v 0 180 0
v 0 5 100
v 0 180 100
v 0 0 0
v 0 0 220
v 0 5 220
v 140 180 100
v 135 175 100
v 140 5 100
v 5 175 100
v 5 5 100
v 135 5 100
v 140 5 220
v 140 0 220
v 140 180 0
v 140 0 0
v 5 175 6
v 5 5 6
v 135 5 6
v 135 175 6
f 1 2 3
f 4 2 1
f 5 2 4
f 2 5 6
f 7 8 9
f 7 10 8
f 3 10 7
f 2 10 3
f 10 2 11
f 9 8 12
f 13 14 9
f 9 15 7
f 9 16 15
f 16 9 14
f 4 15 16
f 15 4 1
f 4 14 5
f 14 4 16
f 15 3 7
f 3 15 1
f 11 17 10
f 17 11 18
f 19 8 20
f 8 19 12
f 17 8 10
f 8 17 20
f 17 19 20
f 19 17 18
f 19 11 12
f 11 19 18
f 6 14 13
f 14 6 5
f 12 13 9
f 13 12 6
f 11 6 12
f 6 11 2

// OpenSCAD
// Parameters
box_size = 180;        // mm
bank_size = 140;        // mm
box_high = 100;        // mm
thickness = 5;         // mm (wall thickness)
flap_extension = 120;  // mm (extra top part for mounting)
hole_diam = 8;         // mm
hole_margin = 30;      // mm from flap sides
hole_distance = box_size - 2 * hole_margin; // distance between holes
hole_y = hole_margin;  // Y position from left for first hole
hole_z = box_size + flap_extension / 2; // Z position for holes (centered on flap)

// Box (open at back)
difference() {
    // Outer shell
    cube([bank_size, box_size, box_high]);

    // Hollow interior
    translate([thickness, thickness, thickness + 1])
        cube([bank_size - 2 * thickness, box_size - 2 * thickness, box_size - thickness]);
}

difference() {
    // Extended top flap for mounting
    translate([0, 0, box_high])
        cube([bank_size, thickness, flap_extension]);

    // Mounting holes in extended flap
//    translate([hole_margin, thickness + 1, box_high + flap_extension / 2])
//        rotate([90,0,0])
//        cylinder(h=thickness+10, d=hole_diam, $fn=40);
//
//    translate([box_size - hole_margin, thickness + 1, box_high + flap_extension / 2])
//        rotate([90,0,0])
//        cylinder(h=thickness+10, d=hole_diam, $fn=40);
}
